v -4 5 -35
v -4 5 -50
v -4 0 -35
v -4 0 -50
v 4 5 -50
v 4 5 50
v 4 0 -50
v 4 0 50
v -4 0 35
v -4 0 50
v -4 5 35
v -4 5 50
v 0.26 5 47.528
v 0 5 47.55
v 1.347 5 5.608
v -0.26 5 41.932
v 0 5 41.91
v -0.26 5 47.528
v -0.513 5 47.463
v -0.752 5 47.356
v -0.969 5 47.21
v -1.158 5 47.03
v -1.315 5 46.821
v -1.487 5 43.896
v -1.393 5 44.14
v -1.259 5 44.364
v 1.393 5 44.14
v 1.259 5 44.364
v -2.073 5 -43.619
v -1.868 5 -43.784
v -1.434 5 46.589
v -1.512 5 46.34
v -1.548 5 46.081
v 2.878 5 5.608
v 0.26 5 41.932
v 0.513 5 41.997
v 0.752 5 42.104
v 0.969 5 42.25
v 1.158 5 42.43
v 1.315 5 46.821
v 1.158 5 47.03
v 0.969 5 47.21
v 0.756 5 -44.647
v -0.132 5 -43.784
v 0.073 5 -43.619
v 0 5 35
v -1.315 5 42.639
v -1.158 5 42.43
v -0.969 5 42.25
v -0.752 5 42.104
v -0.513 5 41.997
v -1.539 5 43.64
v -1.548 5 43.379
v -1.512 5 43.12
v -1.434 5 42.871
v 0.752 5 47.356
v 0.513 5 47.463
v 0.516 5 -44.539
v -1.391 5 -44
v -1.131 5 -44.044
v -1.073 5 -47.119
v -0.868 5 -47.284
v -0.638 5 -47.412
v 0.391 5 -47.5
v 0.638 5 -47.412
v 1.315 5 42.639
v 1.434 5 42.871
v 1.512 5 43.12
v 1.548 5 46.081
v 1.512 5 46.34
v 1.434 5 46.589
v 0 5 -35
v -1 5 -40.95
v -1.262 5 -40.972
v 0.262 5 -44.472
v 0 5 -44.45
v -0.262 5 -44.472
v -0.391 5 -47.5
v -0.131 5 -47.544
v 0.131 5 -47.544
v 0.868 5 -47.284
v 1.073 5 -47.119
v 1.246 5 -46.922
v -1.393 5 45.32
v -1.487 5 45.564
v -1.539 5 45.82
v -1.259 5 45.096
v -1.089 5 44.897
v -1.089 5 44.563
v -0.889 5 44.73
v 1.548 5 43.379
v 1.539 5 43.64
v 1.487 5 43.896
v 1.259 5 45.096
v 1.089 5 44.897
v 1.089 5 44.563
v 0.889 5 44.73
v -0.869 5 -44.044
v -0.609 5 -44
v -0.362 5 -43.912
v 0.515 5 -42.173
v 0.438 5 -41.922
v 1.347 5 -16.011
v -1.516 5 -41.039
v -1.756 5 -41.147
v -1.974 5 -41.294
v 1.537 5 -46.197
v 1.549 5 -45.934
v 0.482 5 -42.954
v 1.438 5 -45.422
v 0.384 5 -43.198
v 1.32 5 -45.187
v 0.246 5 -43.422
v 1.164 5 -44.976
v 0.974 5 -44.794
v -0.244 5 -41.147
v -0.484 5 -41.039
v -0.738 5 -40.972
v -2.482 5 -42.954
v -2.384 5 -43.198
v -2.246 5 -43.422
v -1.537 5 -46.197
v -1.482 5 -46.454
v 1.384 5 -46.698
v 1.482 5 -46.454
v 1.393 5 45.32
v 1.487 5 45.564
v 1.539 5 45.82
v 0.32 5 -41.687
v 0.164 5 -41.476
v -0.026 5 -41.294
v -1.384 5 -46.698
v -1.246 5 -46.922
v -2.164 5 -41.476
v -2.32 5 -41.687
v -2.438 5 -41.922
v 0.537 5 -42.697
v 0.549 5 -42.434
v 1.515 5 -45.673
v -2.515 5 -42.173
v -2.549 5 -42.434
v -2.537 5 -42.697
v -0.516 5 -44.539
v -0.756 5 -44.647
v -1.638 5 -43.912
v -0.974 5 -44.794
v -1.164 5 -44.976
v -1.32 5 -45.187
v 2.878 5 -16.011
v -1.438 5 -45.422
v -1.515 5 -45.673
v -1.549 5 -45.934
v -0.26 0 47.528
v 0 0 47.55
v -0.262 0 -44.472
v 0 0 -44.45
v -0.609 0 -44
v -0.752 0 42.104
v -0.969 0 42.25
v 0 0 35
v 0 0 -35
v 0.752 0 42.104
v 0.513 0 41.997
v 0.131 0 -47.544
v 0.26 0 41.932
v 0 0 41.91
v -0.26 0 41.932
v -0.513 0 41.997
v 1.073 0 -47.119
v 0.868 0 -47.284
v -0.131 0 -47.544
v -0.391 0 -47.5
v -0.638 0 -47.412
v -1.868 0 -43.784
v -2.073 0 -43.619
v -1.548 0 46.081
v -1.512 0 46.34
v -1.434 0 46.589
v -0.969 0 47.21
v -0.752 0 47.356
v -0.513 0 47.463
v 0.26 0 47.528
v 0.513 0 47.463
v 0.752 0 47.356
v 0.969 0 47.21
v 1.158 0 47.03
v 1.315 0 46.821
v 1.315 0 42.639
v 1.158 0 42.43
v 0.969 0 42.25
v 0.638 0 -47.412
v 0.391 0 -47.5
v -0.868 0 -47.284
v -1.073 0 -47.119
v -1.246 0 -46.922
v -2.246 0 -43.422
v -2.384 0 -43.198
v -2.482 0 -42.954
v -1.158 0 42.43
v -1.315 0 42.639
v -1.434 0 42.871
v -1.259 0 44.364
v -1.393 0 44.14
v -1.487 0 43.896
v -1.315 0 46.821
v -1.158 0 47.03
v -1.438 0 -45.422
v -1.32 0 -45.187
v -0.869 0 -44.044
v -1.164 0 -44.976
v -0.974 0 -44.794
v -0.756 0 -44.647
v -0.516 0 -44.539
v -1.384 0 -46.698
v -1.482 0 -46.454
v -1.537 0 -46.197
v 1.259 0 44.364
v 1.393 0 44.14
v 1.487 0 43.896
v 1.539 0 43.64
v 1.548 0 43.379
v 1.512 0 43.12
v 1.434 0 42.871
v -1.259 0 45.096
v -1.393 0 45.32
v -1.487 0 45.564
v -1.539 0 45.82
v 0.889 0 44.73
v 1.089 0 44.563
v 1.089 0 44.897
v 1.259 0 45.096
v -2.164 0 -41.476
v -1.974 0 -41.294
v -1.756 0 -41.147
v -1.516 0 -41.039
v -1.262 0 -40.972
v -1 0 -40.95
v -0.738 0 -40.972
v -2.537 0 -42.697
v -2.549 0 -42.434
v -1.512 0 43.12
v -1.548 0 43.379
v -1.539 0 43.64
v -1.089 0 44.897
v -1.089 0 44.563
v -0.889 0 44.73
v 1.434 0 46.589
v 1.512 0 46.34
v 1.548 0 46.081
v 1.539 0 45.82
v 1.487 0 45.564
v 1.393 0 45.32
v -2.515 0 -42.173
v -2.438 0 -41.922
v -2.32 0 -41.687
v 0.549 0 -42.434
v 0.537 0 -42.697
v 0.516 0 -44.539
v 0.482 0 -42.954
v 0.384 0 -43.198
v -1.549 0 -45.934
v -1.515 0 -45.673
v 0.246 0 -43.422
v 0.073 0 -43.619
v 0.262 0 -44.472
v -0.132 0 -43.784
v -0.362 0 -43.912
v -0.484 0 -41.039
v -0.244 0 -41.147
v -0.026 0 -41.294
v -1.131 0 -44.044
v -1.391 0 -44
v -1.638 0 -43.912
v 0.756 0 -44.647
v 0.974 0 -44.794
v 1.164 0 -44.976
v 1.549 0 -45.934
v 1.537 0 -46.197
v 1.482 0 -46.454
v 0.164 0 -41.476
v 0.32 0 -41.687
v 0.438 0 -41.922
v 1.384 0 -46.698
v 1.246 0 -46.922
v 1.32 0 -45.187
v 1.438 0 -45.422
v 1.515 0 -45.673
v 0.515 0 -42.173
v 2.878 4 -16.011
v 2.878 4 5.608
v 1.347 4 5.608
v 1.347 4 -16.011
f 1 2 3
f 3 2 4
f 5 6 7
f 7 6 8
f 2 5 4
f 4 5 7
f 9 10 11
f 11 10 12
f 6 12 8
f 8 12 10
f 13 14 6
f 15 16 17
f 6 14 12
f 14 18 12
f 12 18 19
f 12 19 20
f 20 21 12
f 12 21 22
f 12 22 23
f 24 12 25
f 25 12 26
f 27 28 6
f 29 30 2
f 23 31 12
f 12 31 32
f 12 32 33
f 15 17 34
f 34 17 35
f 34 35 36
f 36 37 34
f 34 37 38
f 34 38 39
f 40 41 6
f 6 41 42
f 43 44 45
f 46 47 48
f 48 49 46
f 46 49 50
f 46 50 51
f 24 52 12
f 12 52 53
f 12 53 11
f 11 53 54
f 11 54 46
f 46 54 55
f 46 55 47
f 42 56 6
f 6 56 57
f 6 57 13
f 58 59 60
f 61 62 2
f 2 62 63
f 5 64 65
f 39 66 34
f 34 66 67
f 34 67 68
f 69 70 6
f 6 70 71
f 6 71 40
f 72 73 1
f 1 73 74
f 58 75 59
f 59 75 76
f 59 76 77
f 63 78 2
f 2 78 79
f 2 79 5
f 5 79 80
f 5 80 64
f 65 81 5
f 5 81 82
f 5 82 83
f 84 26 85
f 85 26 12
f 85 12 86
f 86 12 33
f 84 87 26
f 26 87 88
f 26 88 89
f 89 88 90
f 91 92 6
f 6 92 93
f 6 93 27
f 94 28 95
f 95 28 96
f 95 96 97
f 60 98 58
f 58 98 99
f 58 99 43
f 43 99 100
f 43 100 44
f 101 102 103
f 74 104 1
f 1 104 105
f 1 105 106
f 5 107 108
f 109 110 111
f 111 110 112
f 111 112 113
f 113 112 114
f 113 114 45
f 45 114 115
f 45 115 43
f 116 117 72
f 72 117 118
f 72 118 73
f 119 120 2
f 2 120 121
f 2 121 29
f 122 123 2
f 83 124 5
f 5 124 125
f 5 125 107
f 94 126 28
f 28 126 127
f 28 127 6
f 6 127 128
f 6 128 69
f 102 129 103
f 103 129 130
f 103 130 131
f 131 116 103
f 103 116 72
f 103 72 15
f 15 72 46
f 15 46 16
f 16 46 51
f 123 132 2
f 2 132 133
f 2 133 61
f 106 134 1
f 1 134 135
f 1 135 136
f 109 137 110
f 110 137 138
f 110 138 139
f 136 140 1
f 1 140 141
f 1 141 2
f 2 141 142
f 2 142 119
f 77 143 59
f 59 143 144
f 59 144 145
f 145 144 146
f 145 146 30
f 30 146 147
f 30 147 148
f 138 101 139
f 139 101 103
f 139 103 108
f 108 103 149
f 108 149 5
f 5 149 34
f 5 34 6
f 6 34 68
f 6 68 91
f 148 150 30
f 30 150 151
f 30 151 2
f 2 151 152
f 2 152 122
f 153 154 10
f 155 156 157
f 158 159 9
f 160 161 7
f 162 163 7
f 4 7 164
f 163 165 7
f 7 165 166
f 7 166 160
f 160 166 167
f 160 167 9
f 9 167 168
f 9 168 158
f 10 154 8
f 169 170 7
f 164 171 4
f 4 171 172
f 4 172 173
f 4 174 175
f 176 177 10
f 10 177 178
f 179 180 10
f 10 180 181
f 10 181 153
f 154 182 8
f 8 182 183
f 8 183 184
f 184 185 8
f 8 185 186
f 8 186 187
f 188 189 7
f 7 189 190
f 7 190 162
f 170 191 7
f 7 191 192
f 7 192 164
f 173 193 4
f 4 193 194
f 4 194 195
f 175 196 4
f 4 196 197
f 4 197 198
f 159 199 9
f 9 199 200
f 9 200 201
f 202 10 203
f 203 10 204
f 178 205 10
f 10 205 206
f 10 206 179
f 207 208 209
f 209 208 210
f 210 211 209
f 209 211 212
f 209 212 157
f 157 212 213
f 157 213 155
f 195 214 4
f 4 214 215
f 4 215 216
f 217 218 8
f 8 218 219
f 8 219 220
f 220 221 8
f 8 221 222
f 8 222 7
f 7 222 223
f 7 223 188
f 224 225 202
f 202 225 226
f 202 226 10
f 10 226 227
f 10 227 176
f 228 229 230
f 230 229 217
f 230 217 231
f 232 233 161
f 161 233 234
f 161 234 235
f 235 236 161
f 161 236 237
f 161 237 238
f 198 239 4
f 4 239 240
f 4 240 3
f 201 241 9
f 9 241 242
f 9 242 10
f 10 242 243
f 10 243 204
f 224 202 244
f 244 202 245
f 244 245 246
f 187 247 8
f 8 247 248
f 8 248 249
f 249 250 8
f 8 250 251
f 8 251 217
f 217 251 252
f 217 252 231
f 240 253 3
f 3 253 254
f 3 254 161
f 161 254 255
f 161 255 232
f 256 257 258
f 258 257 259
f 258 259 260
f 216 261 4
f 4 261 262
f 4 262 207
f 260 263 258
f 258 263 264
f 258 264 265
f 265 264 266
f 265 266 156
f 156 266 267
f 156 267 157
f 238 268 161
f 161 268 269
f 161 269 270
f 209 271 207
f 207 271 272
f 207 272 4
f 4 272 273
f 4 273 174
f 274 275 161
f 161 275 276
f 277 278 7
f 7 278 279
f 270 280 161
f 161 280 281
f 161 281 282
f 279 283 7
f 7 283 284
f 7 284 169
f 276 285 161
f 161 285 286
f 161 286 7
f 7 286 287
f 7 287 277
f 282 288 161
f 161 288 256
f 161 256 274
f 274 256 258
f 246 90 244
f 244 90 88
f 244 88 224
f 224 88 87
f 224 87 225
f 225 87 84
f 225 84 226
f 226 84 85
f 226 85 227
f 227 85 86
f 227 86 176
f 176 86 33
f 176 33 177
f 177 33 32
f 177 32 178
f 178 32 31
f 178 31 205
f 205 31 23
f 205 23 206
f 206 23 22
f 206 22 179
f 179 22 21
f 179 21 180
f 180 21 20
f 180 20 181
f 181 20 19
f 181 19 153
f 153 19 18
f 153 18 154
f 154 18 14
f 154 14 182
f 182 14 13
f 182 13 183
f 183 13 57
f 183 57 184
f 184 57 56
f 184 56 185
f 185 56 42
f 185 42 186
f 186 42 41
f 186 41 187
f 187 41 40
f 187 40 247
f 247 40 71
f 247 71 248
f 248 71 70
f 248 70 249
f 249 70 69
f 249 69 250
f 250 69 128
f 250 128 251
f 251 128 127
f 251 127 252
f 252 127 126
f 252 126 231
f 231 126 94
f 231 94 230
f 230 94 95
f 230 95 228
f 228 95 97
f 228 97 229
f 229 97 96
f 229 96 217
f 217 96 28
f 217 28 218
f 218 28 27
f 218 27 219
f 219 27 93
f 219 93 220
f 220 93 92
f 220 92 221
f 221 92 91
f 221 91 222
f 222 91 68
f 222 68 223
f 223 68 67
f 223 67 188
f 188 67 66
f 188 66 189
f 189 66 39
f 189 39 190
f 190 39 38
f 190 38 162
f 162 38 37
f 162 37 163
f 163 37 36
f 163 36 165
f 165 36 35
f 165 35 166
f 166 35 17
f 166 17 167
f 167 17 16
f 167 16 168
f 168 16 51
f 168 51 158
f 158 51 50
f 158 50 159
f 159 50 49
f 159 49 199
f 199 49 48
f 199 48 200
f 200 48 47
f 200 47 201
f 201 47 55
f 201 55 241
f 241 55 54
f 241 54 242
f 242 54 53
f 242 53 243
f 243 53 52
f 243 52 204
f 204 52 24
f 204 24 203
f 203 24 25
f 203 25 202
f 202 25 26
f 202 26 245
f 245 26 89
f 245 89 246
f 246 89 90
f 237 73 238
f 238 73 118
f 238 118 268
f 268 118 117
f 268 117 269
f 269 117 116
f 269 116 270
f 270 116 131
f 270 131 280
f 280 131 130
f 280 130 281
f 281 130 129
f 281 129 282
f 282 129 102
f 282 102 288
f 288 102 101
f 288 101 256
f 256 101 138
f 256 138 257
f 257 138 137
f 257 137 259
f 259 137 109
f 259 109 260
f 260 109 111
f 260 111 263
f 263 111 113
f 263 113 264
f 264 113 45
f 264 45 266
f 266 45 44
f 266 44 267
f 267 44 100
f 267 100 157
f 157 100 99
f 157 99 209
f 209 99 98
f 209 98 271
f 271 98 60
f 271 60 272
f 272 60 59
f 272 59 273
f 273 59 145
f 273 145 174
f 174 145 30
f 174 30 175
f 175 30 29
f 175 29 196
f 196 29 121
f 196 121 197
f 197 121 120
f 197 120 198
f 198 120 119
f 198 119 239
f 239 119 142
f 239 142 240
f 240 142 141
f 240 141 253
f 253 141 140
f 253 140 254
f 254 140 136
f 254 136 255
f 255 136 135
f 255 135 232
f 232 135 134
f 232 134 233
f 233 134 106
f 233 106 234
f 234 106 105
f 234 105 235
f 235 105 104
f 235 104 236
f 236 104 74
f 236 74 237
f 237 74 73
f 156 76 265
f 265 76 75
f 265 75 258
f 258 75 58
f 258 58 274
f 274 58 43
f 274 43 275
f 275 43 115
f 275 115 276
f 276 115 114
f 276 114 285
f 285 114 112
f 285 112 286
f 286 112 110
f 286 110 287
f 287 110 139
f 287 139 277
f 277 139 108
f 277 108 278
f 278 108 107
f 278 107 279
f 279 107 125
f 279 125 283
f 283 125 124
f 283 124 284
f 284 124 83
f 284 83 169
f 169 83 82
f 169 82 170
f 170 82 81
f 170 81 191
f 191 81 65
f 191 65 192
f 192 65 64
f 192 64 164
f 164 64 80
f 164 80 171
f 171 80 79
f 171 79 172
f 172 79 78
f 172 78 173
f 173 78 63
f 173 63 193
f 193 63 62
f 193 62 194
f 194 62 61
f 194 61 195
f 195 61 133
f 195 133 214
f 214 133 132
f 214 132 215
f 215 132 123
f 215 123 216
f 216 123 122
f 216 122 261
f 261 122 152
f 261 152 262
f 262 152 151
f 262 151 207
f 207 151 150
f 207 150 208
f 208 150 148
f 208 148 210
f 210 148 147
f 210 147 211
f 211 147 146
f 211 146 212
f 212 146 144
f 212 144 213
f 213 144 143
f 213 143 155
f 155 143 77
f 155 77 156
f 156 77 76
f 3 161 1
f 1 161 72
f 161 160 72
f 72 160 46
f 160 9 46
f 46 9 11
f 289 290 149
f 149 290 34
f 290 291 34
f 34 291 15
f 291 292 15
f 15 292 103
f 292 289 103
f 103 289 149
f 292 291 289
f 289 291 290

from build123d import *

# Parameters (mm, degrees)
SKETCH1_W      = 8
SKETCH1_H      = 100
EXTRUDE1_DEPTH = 5
SKETCH2_R      = 1.55
EXTRUDE4_DEPTH = 5
SKETCH4_R      = 1.55
EXTRUDE6_DEPTH = 5
SKETCH5_W      = 4
SKETCH5_H      = 70
EXTRUDE7_DEPTH = 5
SKETCH6_W      = 1.530516358
SKETCH6_H      = 21.618543552
EXTRUDE8_DEPTH = 1


with BuildPart() as part:
    # Sketch1 → Extrude1 (new body)
    with BuildSketch(Plane(origin=(0, 0, 0), x_dir=(1, 0, 0), z_dir=(0, 1, 0))):
        Rectangle(SKETCH1_W, SKETCH1_H)
    extrude(amount=EXTRUDE1_DEPTH)

    # Sketch2 → Extrude4 (cut)
    with BuildSketch(Plane(origin=(0, 5, 0), x_dir=(1, 0, 0), z_dir=(0, 1, 0))):
        with Locations(Location((0, -46, 0), (0, 0, 270))):
            Circle(SKETCH2_R)
    extrude(amount=-EXTRUDE4_DEPTH, mode=Mode.SUBTRACT)

    # Sketch4 → Extrude6 (cut)
    with BuildSketch(Plane(origin=(0, 5, 0), x_dir=(1, 0, 0), z_dir=(0, 1, 0))):
        with Locations((0, -43.46)):
            Circle(SKETCH4_R)
        with Locations((0, -46)):
            Circle(SKETCH4_R)
        with Locations(Location((-1, 42.5, 0), (0, 0, 270))):
            Circle(SKETCH4_R)
        with Locations(Location((0, 46, 0), (0, 0, 270))):
            Circle(SKETCH4_R)
    extrude(amount=-EXTRUDE6_DEPTH, mode=Mode.SUBTRACT)

    # Sketch5 → Extrude7 (cut)
    with BuildSketch(Plane(origin=(0, 5, 0), x_dir=(1, 0, 0), z_dir=(0, 1, 0))):
        with Locations((-2, 0)):
            Rectangle(SKETCH5_W, SKETCH5_H)
    extrude(amount=-EXTRUDE7_DEPTH, mode=Mode.SUBTRACT)

    # Sketch6 → Extrude8 (cut)
    with BuildSketch(Plane(origin=(0, 5, 0), x_dir=(1, 0, 0), z_dir=(0, 1, 0))):
        with Locations((2.112618746, 5.201364346)):
            Rectangle(SKETCH6_W, SKETCH6_H)
    extrude(amount=-EXTRUDE8_DEPTH, mode=Mode.SUBTRACT)


solid = part.part
